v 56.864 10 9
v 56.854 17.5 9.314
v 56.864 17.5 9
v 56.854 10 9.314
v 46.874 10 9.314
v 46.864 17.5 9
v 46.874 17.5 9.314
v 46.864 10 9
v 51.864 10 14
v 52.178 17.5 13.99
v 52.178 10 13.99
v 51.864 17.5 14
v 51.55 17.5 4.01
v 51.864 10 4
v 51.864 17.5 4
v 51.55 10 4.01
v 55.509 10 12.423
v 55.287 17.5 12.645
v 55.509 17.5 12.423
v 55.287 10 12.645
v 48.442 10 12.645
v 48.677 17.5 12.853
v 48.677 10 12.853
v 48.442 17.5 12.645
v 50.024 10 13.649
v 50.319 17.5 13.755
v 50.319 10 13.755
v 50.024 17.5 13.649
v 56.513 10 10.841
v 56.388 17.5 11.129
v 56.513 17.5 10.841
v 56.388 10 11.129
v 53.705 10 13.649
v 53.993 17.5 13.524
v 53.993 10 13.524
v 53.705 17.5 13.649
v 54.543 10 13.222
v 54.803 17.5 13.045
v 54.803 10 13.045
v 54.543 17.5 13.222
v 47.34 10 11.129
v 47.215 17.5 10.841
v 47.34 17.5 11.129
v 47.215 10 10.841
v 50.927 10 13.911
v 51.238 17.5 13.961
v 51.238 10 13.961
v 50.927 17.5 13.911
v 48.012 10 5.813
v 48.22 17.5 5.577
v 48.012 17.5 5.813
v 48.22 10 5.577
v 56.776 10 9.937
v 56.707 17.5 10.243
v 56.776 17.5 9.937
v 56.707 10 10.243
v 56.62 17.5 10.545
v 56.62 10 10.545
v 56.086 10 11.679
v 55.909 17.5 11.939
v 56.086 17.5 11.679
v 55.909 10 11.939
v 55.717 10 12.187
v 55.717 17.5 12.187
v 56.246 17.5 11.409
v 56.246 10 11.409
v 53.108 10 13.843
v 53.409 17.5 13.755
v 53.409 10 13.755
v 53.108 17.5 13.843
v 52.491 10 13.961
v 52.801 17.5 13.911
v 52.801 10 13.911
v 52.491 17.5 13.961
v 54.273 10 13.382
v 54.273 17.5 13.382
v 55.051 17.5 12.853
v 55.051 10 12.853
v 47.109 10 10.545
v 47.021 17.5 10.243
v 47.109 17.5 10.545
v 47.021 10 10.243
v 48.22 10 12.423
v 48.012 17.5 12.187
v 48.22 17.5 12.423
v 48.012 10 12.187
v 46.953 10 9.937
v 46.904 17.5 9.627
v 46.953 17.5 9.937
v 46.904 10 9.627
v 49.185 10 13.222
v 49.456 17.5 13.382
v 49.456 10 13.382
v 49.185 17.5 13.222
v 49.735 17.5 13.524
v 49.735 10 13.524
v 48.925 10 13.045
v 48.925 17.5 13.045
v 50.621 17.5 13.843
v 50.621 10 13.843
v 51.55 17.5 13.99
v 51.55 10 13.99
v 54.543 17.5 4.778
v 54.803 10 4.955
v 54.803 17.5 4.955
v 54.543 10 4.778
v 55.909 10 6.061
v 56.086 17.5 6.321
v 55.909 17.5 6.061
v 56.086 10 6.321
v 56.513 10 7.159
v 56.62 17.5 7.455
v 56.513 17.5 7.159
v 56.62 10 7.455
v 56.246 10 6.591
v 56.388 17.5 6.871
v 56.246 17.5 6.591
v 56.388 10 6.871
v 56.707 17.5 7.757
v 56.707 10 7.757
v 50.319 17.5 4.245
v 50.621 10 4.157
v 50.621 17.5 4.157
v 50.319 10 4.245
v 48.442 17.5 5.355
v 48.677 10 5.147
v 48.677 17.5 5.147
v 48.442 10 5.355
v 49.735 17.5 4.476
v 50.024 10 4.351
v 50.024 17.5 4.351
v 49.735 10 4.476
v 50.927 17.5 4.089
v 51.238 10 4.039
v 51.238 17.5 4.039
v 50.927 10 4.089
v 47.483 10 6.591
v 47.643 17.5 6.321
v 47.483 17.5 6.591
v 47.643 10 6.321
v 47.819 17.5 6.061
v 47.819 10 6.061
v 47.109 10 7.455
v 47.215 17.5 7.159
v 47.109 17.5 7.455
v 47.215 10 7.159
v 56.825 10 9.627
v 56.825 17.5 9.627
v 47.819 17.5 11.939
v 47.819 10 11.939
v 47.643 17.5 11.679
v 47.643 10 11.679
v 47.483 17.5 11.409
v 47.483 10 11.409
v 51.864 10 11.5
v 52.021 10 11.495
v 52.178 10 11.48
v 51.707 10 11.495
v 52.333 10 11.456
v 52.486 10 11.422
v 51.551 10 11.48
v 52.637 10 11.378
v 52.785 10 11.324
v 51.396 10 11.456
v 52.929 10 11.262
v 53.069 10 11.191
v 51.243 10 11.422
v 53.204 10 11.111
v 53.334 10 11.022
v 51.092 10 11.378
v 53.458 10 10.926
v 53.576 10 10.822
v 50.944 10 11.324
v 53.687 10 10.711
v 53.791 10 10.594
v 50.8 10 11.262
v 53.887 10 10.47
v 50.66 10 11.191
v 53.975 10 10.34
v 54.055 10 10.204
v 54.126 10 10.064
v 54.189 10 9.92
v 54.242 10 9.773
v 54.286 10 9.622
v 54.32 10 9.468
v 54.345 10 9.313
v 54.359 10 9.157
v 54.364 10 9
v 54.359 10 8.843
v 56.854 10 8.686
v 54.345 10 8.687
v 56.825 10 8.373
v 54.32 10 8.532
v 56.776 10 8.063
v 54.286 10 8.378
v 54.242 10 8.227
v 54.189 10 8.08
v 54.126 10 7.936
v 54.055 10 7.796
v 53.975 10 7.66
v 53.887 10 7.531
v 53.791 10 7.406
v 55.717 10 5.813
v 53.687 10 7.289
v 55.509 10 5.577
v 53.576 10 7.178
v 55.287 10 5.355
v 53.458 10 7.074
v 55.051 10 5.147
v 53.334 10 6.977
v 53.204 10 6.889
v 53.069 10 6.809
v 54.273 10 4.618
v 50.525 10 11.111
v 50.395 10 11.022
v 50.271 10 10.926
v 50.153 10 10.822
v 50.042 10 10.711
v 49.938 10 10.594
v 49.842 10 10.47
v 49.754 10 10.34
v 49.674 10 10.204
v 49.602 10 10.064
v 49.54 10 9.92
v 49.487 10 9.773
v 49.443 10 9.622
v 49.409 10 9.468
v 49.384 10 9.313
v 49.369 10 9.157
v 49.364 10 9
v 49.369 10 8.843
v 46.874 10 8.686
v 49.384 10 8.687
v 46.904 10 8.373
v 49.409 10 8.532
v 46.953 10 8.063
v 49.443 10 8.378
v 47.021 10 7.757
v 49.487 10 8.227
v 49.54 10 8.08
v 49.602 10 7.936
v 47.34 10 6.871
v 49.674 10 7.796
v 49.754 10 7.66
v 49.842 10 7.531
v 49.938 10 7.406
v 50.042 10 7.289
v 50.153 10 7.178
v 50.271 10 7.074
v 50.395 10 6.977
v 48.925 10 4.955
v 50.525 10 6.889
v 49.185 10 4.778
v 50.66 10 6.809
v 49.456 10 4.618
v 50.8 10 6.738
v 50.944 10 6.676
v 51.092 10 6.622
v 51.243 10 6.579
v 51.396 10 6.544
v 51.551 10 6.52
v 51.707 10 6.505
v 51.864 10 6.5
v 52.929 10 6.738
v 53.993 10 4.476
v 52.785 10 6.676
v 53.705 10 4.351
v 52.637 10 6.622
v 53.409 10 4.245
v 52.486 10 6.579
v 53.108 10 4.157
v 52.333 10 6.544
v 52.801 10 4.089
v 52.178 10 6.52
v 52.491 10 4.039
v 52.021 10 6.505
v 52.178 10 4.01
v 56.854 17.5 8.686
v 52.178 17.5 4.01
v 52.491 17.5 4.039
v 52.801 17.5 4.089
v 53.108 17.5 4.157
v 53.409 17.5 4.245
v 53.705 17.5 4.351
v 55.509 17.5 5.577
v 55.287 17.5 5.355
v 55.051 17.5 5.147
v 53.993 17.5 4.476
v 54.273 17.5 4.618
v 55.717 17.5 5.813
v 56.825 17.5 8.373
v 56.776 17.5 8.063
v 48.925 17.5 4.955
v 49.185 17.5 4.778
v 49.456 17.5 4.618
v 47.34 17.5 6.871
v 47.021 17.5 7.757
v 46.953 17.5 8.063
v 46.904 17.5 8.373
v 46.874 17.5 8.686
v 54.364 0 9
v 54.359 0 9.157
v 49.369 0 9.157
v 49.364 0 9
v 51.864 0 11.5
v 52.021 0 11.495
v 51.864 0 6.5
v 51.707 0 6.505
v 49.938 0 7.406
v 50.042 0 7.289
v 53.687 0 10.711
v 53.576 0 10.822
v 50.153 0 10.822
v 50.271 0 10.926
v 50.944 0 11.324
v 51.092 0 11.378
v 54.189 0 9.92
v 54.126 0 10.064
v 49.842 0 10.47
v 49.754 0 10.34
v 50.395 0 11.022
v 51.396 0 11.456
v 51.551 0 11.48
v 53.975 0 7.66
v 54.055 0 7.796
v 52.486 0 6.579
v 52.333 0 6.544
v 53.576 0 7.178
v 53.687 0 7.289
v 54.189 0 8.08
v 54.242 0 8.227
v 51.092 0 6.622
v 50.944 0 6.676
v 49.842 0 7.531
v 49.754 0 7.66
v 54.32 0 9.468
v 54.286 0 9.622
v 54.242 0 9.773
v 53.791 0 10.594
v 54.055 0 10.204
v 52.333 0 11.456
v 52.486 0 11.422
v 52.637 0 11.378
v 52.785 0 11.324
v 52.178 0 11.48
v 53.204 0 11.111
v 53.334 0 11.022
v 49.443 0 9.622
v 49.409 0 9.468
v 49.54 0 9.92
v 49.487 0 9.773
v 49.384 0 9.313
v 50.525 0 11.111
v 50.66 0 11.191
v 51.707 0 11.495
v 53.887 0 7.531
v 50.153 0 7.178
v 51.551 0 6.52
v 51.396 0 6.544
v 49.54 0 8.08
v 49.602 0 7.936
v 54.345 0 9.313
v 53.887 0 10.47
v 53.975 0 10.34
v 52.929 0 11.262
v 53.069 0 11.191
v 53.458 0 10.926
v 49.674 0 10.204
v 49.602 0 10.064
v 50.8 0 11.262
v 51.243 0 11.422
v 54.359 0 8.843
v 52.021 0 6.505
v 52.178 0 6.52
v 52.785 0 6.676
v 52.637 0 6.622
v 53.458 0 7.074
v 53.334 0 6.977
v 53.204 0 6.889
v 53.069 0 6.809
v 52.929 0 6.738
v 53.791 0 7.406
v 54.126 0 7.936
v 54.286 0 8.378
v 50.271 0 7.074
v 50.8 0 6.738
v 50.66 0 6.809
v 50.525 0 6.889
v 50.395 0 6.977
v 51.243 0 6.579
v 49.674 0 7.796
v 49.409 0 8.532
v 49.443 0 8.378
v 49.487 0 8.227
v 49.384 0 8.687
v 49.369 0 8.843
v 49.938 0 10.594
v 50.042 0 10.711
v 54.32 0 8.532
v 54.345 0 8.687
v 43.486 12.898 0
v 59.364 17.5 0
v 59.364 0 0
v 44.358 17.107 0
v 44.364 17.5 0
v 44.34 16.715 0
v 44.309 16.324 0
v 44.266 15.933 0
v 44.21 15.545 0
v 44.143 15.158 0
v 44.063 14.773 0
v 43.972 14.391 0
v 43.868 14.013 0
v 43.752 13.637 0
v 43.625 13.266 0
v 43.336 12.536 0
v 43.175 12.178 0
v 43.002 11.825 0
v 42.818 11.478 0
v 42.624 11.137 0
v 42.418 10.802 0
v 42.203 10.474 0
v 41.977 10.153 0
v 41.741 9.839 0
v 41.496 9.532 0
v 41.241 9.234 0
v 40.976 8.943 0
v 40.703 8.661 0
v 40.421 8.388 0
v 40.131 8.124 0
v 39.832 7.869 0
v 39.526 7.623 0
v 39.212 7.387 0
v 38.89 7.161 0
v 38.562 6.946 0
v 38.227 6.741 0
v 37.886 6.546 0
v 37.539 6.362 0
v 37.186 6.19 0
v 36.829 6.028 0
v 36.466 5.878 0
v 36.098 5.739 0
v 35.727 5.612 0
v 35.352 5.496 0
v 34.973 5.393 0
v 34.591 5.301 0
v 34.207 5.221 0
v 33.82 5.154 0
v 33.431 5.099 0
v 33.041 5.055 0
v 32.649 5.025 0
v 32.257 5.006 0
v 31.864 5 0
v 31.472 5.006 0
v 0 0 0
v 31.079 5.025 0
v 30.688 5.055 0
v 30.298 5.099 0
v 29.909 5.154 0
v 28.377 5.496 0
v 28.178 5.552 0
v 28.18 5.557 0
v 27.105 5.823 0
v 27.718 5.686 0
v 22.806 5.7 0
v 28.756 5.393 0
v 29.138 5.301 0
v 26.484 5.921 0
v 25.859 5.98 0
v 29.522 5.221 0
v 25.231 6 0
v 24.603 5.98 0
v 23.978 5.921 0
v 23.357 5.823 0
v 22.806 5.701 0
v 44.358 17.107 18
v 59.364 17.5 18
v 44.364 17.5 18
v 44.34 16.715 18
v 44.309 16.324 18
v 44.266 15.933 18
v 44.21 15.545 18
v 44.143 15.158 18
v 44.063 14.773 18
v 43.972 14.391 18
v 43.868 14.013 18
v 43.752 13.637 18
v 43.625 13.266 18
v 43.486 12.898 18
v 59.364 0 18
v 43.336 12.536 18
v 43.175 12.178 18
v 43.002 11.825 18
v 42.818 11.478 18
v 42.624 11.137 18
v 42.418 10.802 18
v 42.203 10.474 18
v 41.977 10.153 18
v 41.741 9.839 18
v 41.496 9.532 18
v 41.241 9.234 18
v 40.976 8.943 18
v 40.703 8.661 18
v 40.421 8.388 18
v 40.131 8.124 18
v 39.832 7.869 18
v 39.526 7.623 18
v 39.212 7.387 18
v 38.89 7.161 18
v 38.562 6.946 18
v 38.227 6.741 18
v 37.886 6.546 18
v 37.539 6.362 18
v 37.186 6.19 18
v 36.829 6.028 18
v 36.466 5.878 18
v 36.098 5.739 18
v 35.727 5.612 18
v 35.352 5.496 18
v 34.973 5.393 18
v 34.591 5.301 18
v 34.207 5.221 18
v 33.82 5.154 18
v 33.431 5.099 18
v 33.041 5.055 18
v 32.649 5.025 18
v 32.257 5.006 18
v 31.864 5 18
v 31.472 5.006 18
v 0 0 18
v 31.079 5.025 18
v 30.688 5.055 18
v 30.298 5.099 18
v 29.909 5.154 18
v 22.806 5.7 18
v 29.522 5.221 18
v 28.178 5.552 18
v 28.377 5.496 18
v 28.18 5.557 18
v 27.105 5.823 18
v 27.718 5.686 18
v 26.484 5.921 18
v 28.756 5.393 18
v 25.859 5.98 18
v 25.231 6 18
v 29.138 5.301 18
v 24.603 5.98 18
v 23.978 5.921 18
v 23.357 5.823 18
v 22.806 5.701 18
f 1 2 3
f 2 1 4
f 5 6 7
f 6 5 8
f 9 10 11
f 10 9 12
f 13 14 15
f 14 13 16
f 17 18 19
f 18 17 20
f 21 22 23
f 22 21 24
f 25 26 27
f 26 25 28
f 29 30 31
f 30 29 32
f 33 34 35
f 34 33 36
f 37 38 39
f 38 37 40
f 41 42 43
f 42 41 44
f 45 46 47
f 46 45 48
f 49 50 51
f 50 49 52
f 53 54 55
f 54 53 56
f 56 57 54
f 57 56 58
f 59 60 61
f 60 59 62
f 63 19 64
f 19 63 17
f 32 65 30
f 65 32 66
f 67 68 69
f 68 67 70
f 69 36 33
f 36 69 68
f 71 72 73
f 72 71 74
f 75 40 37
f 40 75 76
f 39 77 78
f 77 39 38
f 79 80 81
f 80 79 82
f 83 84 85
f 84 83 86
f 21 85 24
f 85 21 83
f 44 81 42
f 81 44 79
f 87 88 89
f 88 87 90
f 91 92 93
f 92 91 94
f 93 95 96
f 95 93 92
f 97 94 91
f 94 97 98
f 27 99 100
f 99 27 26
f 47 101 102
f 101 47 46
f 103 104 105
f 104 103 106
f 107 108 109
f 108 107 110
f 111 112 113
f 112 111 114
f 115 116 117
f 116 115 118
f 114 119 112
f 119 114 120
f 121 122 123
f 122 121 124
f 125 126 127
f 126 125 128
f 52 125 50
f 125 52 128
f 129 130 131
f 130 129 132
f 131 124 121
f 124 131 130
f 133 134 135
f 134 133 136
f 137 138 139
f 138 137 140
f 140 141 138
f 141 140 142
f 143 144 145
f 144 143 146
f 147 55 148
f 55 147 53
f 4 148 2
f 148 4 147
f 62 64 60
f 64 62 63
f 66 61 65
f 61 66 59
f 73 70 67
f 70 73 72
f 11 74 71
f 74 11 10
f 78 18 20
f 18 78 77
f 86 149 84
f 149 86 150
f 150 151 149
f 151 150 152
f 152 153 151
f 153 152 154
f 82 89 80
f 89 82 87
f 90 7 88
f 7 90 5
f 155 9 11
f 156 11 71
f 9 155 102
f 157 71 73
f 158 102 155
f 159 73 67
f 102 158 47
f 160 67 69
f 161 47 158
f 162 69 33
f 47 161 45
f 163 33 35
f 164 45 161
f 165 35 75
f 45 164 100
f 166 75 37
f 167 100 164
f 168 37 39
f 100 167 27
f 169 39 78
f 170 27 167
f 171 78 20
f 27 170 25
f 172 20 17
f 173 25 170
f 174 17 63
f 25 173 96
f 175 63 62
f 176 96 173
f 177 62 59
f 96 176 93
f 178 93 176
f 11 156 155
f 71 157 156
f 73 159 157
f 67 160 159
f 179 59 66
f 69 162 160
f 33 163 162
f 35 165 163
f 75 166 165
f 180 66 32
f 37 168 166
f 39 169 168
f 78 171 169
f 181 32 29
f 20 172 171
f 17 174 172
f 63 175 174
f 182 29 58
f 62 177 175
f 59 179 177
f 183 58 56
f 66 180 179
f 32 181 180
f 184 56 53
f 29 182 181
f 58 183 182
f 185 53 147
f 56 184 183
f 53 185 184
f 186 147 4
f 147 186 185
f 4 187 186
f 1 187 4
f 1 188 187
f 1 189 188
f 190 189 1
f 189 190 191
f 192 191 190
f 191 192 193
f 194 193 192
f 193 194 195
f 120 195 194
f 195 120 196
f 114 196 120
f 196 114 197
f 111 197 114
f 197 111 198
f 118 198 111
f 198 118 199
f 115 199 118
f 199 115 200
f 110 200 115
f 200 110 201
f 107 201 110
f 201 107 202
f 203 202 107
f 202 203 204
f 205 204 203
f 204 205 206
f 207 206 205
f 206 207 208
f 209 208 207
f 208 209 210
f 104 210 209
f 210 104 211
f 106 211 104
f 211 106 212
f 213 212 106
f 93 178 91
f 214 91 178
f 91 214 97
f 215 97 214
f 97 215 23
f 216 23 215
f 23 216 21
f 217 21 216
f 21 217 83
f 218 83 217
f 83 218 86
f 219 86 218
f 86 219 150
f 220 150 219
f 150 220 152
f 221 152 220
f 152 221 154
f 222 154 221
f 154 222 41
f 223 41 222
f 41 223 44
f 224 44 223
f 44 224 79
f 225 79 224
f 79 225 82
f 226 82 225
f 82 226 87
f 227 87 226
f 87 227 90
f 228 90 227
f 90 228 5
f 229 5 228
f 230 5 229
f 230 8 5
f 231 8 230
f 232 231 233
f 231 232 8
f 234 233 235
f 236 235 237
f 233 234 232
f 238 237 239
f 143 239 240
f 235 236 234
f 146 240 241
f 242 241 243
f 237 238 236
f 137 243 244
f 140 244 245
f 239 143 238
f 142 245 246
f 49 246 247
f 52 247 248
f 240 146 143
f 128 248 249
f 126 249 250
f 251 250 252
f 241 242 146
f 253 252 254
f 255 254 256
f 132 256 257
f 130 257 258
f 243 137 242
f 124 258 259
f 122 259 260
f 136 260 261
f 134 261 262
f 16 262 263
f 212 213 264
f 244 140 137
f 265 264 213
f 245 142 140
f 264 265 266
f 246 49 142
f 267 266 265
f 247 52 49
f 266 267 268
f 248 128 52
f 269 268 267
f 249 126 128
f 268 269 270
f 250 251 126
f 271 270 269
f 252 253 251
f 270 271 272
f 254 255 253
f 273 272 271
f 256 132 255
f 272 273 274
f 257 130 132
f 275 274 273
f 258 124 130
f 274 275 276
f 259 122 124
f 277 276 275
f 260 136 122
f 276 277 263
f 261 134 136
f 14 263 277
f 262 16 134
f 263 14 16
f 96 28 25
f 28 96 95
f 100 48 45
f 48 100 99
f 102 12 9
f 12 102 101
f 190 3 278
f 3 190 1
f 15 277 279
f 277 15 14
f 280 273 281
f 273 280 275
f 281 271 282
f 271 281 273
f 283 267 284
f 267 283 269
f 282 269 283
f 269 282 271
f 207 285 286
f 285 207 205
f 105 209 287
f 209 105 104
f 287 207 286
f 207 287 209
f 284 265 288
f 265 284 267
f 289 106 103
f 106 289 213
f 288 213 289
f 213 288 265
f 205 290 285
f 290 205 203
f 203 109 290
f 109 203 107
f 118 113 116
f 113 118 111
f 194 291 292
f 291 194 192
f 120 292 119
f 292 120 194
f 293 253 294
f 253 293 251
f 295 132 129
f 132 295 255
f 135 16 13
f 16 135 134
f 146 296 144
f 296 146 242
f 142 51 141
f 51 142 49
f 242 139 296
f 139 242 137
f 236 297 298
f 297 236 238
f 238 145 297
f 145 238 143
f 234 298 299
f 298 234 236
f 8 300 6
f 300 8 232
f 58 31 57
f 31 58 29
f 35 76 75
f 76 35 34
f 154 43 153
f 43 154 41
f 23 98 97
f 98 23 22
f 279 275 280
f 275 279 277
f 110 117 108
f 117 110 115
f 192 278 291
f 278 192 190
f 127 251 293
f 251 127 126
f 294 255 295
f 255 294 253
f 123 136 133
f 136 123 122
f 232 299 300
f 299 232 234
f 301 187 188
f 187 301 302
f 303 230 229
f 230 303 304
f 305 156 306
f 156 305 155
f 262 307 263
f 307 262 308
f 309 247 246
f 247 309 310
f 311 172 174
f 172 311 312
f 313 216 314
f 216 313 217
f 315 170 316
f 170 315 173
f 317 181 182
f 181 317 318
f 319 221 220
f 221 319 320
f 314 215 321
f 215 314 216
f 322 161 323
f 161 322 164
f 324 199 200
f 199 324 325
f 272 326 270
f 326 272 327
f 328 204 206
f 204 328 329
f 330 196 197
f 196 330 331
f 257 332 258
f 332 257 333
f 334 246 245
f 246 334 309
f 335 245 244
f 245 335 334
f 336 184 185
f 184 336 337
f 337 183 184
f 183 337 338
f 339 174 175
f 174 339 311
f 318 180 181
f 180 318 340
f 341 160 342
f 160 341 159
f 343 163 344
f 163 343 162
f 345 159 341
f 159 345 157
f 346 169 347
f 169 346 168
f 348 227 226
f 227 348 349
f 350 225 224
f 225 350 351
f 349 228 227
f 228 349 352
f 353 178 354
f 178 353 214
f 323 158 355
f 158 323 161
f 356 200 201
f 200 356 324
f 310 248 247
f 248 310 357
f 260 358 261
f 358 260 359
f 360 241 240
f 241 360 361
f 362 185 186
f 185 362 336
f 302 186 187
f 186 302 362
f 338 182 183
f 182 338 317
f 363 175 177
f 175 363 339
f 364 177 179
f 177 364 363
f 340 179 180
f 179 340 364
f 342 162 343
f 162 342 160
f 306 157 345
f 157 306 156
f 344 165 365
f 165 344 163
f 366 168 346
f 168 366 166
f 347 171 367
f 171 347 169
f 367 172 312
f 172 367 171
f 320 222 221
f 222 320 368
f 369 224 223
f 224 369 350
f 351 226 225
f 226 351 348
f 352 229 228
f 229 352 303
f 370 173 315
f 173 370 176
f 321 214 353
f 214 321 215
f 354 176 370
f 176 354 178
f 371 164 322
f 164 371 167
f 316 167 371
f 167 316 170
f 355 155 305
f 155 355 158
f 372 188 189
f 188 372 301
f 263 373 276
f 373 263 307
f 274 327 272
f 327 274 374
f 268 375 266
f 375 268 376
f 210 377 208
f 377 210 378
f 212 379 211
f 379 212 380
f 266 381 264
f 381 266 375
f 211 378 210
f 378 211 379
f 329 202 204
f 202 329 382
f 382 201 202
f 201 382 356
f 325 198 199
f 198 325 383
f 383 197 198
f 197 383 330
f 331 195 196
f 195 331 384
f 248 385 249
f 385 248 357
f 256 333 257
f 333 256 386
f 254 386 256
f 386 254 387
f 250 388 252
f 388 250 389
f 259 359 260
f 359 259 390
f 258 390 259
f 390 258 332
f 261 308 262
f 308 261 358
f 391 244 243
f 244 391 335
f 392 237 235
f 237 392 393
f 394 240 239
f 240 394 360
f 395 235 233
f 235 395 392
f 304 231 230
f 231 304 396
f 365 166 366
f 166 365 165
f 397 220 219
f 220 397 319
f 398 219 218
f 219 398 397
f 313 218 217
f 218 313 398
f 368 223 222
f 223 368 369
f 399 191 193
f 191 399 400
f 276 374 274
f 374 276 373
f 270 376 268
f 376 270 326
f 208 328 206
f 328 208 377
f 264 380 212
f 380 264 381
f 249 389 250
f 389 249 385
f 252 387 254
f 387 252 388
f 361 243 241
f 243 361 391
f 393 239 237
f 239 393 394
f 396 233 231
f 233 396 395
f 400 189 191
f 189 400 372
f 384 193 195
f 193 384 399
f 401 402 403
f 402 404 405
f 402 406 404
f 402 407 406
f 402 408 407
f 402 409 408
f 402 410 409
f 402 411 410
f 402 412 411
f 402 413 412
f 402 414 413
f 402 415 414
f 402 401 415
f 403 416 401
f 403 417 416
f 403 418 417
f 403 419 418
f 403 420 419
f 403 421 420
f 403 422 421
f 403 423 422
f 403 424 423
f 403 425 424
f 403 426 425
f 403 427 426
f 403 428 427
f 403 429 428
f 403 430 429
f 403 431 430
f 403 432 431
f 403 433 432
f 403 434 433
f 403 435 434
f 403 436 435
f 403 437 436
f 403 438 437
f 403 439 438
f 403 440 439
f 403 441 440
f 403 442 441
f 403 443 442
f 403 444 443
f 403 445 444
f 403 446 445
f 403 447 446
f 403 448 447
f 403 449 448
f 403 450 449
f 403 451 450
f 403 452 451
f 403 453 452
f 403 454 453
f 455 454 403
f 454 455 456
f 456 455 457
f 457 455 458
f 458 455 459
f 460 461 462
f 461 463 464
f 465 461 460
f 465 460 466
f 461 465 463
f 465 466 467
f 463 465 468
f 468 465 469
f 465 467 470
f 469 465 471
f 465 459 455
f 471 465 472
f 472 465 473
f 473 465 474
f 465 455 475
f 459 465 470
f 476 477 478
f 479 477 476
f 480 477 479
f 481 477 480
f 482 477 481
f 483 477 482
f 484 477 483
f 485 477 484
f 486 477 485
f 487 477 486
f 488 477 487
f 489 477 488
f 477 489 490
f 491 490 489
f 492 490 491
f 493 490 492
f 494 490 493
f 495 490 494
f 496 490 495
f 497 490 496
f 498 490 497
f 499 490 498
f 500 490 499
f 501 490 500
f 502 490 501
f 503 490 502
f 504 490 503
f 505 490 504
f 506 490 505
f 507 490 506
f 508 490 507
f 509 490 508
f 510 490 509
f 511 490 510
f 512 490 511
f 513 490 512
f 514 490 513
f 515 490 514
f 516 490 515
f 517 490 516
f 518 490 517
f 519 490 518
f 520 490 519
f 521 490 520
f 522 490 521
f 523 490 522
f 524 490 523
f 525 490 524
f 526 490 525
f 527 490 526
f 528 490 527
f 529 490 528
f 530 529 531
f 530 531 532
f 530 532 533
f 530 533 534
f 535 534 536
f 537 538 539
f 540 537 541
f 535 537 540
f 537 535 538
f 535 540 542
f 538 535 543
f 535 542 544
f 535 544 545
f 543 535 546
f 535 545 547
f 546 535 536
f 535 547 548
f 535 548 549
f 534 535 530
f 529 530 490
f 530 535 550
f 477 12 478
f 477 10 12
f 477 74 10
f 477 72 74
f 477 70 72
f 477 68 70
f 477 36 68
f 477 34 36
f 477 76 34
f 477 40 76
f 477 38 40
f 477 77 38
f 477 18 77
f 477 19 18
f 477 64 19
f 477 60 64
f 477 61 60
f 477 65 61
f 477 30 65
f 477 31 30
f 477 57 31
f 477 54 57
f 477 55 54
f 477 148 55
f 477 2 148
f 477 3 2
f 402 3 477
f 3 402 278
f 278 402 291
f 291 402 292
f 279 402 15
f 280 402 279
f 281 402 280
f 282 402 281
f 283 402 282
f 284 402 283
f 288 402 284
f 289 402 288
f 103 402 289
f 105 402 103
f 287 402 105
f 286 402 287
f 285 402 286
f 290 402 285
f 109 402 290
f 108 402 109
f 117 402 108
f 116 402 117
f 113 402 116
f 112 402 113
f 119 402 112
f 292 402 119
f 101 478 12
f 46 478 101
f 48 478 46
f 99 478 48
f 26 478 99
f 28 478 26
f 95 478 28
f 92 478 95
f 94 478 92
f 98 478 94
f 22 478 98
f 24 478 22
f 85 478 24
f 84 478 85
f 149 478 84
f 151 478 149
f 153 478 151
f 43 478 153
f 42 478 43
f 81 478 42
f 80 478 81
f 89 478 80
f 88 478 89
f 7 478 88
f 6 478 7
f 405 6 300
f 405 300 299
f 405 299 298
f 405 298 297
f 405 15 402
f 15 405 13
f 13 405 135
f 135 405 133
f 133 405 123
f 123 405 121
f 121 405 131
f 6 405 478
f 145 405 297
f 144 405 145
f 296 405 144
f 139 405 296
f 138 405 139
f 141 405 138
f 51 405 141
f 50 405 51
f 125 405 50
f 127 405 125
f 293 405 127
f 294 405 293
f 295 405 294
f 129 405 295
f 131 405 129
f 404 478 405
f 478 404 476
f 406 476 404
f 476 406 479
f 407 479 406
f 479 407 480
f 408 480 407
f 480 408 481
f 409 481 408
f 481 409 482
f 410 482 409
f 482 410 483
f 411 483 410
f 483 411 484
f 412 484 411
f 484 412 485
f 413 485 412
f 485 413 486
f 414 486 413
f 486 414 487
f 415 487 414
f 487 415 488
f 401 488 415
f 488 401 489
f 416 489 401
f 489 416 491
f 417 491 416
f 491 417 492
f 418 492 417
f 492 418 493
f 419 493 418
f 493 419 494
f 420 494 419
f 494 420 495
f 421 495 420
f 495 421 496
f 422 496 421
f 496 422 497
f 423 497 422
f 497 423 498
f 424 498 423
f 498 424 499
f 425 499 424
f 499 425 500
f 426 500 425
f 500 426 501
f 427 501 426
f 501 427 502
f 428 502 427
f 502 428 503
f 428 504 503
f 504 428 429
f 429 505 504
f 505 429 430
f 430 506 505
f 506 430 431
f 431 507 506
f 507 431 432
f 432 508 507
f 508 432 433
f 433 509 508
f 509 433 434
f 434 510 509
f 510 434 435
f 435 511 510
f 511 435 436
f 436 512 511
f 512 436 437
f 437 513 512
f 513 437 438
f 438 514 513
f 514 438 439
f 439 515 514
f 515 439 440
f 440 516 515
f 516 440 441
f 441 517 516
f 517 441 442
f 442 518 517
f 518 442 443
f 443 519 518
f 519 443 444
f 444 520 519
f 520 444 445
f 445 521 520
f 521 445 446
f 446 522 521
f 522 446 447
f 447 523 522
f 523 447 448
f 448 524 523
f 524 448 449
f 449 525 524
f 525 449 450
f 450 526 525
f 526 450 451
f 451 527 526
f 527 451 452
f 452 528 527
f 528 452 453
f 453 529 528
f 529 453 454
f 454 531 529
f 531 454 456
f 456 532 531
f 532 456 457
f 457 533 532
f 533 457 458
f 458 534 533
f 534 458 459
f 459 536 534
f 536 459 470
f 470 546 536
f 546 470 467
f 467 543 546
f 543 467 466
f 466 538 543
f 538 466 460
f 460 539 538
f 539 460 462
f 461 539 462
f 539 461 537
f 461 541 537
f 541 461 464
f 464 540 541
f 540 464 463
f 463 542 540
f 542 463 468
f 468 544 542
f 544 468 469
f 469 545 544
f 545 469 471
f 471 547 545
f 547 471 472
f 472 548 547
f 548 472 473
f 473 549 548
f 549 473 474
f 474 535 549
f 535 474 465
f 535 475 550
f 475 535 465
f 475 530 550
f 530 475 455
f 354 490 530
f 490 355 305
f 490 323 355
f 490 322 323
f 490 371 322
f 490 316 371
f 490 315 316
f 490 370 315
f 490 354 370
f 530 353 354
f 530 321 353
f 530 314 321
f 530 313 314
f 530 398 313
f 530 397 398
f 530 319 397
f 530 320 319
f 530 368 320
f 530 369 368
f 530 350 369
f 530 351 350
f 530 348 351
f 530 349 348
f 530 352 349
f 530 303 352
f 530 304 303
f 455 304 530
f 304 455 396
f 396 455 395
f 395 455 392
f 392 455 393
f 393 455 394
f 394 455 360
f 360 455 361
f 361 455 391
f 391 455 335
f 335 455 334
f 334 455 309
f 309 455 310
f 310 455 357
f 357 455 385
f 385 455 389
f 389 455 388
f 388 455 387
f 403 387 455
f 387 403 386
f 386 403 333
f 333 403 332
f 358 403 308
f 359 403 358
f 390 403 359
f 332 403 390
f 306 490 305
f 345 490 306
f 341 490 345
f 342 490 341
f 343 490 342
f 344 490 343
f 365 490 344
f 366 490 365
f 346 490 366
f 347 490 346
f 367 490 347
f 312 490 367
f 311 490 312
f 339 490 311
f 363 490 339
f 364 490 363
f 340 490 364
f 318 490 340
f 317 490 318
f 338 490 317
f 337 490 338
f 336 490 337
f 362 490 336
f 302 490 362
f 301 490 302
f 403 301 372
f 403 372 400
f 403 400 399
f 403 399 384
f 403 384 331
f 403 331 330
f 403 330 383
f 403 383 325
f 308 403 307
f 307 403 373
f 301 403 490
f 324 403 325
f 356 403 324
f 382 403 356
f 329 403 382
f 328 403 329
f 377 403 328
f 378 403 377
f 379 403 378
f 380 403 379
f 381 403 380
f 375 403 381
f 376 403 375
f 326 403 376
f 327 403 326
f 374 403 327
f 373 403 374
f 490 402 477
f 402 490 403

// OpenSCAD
w = 18;  // Width of block

alpha = atan(1/4);   // Climbing angle 
d = 5;  // Final wheel elevation
c = 1;   // "Groove" deepness for wheel
rho = 10;   // Radius for rounded hill
r = 12.5;    // Wheel radius
b = 15;     // Final border width



y2 = d + r;
y1 = d + c - rho;
x1 = (y1 + rho*cos(alpha))/tan(alpha) + rho*sin(alpha);

    cosBeta = (d+r-y1)/(r+rho);
    sinBeta = sqrt(1 - cosBeta*cosBeta);

x2 = x1 + (r+rho)*sinBeta;

// translate([0,d,0]) cube([l+2,c,1]);   // test

l = x2 + r + b;


$fn=100;

difference(){

    linear_extrude(w) {
        difference(){
            union() {
                translate([0,0]) polygon([[0,0],[l,0],[l,y2],[x2,y2],[x1,y1],[x1-rho*sin(alpha),y1+rho*cos(alpha)]]);
                translate([x1,y1]) circle(r=rho);
            };        
            
            translate([x2,y2]) circle(r=r, $fn=200);        
            translate([0,-2*rho]) square([l,2*rho]);
        };
    };

    translate([l-b/2,y2+10,w/2]) rotate([90,0,0]) union() {
        cylinder(d=10,h=y2);
        cylinder(d=5,h=y2*2);
    };  
};
